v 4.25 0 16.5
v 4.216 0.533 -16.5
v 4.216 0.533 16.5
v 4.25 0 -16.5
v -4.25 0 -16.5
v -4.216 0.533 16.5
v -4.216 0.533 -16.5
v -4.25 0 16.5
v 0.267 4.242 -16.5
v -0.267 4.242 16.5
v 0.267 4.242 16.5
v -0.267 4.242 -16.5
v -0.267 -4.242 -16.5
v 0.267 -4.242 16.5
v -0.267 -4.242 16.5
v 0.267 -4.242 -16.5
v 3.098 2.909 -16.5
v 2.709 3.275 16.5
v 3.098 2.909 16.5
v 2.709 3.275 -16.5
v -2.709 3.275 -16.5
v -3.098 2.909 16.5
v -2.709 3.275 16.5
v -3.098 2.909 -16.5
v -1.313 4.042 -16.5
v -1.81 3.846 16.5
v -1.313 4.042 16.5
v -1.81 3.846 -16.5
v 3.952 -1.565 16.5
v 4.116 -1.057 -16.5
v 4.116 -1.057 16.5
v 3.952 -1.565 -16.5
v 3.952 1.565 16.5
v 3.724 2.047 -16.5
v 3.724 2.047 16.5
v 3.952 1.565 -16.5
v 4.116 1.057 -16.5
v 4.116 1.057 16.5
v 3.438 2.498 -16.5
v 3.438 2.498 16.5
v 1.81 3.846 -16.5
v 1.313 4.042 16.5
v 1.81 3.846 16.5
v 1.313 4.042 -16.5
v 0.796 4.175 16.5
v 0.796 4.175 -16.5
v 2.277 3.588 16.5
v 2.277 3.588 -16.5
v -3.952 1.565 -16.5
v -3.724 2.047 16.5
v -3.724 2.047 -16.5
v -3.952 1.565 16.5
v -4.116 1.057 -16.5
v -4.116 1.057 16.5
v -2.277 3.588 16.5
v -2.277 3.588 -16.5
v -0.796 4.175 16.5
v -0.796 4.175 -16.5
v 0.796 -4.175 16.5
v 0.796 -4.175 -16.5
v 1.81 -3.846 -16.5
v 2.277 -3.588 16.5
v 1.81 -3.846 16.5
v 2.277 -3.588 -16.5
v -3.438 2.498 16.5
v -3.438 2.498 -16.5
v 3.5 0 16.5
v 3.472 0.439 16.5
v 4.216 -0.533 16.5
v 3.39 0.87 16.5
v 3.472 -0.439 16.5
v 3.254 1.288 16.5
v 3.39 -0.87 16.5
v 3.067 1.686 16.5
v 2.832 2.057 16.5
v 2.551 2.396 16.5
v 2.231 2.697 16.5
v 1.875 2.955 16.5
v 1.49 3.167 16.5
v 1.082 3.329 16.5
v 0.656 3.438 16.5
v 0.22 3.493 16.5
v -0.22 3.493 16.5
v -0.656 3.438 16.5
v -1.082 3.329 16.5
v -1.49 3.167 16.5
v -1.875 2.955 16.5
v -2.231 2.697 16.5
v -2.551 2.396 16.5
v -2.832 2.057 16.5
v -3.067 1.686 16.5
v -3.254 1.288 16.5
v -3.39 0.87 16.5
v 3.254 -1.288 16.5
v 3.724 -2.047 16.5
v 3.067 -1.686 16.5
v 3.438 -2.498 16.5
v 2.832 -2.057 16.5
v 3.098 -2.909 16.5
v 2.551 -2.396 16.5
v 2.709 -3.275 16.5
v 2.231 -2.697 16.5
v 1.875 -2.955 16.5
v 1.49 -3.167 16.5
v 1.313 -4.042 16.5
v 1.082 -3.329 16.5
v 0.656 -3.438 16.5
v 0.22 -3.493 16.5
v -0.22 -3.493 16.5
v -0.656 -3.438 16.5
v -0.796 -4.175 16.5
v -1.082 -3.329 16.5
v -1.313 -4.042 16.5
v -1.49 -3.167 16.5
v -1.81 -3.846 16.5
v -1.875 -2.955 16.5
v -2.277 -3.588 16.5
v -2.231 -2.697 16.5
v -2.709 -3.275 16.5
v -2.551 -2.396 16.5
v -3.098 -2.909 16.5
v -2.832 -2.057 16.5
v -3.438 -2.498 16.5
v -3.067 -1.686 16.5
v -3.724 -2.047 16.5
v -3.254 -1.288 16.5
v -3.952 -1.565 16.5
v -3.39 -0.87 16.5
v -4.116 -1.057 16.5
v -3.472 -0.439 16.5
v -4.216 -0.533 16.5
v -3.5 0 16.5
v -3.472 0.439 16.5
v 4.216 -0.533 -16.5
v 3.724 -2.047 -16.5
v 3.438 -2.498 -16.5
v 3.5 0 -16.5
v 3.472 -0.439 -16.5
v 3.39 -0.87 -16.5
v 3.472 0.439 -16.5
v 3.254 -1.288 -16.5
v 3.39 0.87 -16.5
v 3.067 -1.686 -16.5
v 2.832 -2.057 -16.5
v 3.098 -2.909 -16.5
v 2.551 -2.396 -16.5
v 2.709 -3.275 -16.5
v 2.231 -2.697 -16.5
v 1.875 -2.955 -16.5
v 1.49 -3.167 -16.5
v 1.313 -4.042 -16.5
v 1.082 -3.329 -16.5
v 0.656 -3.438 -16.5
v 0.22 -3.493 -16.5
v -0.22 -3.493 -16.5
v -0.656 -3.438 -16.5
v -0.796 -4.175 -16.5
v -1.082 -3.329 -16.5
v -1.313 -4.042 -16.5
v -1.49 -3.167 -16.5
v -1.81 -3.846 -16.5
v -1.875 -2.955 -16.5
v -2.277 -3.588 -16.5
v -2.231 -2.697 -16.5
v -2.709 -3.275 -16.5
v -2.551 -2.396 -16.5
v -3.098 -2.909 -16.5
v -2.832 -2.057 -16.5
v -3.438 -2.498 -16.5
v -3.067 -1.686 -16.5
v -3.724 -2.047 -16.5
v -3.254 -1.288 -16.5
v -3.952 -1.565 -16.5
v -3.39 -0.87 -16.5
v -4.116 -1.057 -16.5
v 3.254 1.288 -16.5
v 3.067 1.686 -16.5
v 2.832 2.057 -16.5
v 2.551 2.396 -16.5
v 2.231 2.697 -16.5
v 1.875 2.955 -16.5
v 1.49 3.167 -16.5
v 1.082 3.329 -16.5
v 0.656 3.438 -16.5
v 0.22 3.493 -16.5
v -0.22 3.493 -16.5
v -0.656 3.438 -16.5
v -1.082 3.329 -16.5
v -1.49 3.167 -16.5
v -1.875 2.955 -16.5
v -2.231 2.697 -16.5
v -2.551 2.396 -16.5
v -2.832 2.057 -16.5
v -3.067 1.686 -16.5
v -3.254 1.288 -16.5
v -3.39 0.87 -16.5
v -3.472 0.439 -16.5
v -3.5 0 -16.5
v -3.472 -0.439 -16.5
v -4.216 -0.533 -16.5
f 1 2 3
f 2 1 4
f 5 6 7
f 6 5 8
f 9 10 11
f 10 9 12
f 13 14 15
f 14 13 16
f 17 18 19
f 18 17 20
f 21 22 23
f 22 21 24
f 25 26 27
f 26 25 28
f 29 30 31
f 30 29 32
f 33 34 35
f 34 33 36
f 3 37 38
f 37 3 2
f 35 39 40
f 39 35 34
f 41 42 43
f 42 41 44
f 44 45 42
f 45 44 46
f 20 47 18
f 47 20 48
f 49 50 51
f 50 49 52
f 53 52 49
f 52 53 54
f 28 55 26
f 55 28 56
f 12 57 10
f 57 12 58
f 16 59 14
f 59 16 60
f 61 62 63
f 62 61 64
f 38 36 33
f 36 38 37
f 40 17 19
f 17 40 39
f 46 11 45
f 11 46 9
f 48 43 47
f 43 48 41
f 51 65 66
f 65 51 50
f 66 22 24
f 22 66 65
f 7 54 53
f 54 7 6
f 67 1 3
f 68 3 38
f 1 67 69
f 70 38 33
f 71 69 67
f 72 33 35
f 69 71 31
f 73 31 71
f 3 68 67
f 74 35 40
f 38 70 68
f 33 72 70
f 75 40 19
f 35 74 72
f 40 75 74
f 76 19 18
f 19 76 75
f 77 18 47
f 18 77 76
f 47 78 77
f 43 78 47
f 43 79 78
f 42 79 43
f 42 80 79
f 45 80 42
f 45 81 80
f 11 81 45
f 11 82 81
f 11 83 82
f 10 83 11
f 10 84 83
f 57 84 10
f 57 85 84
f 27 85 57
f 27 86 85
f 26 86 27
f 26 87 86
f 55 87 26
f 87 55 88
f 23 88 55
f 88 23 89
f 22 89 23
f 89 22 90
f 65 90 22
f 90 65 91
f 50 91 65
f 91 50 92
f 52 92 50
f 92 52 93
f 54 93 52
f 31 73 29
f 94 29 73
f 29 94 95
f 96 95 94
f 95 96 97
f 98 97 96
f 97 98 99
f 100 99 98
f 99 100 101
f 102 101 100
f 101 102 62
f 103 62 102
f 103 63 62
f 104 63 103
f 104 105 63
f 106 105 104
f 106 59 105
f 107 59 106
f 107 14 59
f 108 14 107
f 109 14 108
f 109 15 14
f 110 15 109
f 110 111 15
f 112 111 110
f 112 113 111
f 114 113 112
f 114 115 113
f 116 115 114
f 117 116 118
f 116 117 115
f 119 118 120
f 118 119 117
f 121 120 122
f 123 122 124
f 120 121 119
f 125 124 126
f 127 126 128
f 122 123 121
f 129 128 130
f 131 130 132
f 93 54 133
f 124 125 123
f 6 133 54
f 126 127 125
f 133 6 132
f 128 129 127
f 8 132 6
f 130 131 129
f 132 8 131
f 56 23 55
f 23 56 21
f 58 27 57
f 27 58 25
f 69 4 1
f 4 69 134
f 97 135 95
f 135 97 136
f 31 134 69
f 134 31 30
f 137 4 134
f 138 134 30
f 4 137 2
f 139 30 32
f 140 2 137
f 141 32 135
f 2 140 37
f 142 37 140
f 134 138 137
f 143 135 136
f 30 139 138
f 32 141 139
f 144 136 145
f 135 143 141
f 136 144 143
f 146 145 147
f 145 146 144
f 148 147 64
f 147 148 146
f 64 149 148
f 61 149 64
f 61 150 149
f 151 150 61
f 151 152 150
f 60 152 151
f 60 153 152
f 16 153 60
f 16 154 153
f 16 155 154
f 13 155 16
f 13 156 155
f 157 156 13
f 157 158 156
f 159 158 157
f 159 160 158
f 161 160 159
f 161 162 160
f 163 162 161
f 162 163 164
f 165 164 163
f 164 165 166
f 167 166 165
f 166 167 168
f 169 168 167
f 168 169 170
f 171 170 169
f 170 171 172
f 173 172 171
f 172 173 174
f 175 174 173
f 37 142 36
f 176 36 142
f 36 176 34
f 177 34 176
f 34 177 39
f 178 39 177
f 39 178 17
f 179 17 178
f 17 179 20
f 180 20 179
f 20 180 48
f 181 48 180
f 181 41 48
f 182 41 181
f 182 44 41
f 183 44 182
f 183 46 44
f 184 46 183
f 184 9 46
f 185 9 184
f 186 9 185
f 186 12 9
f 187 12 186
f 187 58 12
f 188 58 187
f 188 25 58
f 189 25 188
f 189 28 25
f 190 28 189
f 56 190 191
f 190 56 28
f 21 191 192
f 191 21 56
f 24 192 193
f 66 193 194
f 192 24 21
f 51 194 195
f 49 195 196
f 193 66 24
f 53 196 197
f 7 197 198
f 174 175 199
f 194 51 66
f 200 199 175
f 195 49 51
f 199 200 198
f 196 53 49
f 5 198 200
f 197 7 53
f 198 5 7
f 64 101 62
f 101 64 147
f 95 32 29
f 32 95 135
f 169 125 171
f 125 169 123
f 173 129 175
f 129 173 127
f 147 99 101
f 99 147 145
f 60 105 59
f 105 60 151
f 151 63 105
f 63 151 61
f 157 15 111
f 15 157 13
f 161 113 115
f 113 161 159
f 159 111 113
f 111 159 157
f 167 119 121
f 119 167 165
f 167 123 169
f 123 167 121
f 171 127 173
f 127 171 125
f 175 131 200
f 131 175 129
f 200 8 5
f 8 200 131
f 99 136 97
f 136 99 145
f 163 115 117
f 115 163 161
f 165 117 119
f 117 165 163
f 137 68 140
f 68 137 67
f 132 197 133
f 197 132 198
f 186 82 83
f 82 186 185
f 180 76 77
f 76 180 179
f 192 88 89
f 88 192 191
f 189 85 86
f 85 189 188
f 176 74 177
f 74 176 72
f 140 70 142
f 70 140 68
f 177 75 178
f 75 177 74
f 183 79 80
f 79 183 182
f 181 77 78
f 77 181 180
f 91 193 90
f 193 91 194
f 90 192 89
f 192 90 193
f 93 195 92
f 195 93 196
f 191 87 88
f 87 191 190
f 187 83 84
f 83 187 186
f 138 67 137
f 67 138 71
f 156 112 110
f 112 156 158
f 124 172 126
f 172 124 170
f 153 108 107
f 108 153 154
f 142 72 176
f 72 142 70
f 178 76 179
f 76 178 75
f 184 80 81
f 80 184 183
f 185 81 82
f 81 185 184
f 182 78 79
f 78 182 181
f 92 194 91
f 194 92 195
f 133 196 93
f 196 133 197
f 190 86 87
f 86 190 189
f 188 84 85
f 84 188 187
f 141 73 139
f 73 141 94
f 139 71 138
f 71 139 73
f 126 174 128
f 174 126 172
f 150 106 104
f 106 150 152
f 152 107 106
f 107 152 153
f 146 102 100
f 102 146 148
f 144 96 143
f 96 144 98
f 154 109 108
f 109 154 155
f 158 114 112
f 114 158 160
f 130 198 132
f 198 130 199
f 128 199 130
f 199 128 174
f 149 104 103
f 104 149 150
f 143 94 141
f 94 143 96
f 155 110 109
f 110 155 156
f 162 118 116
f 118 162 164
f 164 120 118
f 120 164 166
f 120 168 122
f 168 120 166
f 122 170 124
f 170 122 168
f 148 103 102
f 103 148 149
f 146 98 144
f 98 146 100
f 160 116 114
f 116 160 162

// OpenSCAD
$fn = 50;


difference() {
	union() {
		translate(v = [0, 0, -16.5000000000]) {
			cylinder(h = 33, r = 4.2500000000);
		}
	}
	union() {
		translate(v = [0, 0, -100.0000000000]) {
			cylinder(h = 200, r = 3.5000000000);
		}
	}
}
